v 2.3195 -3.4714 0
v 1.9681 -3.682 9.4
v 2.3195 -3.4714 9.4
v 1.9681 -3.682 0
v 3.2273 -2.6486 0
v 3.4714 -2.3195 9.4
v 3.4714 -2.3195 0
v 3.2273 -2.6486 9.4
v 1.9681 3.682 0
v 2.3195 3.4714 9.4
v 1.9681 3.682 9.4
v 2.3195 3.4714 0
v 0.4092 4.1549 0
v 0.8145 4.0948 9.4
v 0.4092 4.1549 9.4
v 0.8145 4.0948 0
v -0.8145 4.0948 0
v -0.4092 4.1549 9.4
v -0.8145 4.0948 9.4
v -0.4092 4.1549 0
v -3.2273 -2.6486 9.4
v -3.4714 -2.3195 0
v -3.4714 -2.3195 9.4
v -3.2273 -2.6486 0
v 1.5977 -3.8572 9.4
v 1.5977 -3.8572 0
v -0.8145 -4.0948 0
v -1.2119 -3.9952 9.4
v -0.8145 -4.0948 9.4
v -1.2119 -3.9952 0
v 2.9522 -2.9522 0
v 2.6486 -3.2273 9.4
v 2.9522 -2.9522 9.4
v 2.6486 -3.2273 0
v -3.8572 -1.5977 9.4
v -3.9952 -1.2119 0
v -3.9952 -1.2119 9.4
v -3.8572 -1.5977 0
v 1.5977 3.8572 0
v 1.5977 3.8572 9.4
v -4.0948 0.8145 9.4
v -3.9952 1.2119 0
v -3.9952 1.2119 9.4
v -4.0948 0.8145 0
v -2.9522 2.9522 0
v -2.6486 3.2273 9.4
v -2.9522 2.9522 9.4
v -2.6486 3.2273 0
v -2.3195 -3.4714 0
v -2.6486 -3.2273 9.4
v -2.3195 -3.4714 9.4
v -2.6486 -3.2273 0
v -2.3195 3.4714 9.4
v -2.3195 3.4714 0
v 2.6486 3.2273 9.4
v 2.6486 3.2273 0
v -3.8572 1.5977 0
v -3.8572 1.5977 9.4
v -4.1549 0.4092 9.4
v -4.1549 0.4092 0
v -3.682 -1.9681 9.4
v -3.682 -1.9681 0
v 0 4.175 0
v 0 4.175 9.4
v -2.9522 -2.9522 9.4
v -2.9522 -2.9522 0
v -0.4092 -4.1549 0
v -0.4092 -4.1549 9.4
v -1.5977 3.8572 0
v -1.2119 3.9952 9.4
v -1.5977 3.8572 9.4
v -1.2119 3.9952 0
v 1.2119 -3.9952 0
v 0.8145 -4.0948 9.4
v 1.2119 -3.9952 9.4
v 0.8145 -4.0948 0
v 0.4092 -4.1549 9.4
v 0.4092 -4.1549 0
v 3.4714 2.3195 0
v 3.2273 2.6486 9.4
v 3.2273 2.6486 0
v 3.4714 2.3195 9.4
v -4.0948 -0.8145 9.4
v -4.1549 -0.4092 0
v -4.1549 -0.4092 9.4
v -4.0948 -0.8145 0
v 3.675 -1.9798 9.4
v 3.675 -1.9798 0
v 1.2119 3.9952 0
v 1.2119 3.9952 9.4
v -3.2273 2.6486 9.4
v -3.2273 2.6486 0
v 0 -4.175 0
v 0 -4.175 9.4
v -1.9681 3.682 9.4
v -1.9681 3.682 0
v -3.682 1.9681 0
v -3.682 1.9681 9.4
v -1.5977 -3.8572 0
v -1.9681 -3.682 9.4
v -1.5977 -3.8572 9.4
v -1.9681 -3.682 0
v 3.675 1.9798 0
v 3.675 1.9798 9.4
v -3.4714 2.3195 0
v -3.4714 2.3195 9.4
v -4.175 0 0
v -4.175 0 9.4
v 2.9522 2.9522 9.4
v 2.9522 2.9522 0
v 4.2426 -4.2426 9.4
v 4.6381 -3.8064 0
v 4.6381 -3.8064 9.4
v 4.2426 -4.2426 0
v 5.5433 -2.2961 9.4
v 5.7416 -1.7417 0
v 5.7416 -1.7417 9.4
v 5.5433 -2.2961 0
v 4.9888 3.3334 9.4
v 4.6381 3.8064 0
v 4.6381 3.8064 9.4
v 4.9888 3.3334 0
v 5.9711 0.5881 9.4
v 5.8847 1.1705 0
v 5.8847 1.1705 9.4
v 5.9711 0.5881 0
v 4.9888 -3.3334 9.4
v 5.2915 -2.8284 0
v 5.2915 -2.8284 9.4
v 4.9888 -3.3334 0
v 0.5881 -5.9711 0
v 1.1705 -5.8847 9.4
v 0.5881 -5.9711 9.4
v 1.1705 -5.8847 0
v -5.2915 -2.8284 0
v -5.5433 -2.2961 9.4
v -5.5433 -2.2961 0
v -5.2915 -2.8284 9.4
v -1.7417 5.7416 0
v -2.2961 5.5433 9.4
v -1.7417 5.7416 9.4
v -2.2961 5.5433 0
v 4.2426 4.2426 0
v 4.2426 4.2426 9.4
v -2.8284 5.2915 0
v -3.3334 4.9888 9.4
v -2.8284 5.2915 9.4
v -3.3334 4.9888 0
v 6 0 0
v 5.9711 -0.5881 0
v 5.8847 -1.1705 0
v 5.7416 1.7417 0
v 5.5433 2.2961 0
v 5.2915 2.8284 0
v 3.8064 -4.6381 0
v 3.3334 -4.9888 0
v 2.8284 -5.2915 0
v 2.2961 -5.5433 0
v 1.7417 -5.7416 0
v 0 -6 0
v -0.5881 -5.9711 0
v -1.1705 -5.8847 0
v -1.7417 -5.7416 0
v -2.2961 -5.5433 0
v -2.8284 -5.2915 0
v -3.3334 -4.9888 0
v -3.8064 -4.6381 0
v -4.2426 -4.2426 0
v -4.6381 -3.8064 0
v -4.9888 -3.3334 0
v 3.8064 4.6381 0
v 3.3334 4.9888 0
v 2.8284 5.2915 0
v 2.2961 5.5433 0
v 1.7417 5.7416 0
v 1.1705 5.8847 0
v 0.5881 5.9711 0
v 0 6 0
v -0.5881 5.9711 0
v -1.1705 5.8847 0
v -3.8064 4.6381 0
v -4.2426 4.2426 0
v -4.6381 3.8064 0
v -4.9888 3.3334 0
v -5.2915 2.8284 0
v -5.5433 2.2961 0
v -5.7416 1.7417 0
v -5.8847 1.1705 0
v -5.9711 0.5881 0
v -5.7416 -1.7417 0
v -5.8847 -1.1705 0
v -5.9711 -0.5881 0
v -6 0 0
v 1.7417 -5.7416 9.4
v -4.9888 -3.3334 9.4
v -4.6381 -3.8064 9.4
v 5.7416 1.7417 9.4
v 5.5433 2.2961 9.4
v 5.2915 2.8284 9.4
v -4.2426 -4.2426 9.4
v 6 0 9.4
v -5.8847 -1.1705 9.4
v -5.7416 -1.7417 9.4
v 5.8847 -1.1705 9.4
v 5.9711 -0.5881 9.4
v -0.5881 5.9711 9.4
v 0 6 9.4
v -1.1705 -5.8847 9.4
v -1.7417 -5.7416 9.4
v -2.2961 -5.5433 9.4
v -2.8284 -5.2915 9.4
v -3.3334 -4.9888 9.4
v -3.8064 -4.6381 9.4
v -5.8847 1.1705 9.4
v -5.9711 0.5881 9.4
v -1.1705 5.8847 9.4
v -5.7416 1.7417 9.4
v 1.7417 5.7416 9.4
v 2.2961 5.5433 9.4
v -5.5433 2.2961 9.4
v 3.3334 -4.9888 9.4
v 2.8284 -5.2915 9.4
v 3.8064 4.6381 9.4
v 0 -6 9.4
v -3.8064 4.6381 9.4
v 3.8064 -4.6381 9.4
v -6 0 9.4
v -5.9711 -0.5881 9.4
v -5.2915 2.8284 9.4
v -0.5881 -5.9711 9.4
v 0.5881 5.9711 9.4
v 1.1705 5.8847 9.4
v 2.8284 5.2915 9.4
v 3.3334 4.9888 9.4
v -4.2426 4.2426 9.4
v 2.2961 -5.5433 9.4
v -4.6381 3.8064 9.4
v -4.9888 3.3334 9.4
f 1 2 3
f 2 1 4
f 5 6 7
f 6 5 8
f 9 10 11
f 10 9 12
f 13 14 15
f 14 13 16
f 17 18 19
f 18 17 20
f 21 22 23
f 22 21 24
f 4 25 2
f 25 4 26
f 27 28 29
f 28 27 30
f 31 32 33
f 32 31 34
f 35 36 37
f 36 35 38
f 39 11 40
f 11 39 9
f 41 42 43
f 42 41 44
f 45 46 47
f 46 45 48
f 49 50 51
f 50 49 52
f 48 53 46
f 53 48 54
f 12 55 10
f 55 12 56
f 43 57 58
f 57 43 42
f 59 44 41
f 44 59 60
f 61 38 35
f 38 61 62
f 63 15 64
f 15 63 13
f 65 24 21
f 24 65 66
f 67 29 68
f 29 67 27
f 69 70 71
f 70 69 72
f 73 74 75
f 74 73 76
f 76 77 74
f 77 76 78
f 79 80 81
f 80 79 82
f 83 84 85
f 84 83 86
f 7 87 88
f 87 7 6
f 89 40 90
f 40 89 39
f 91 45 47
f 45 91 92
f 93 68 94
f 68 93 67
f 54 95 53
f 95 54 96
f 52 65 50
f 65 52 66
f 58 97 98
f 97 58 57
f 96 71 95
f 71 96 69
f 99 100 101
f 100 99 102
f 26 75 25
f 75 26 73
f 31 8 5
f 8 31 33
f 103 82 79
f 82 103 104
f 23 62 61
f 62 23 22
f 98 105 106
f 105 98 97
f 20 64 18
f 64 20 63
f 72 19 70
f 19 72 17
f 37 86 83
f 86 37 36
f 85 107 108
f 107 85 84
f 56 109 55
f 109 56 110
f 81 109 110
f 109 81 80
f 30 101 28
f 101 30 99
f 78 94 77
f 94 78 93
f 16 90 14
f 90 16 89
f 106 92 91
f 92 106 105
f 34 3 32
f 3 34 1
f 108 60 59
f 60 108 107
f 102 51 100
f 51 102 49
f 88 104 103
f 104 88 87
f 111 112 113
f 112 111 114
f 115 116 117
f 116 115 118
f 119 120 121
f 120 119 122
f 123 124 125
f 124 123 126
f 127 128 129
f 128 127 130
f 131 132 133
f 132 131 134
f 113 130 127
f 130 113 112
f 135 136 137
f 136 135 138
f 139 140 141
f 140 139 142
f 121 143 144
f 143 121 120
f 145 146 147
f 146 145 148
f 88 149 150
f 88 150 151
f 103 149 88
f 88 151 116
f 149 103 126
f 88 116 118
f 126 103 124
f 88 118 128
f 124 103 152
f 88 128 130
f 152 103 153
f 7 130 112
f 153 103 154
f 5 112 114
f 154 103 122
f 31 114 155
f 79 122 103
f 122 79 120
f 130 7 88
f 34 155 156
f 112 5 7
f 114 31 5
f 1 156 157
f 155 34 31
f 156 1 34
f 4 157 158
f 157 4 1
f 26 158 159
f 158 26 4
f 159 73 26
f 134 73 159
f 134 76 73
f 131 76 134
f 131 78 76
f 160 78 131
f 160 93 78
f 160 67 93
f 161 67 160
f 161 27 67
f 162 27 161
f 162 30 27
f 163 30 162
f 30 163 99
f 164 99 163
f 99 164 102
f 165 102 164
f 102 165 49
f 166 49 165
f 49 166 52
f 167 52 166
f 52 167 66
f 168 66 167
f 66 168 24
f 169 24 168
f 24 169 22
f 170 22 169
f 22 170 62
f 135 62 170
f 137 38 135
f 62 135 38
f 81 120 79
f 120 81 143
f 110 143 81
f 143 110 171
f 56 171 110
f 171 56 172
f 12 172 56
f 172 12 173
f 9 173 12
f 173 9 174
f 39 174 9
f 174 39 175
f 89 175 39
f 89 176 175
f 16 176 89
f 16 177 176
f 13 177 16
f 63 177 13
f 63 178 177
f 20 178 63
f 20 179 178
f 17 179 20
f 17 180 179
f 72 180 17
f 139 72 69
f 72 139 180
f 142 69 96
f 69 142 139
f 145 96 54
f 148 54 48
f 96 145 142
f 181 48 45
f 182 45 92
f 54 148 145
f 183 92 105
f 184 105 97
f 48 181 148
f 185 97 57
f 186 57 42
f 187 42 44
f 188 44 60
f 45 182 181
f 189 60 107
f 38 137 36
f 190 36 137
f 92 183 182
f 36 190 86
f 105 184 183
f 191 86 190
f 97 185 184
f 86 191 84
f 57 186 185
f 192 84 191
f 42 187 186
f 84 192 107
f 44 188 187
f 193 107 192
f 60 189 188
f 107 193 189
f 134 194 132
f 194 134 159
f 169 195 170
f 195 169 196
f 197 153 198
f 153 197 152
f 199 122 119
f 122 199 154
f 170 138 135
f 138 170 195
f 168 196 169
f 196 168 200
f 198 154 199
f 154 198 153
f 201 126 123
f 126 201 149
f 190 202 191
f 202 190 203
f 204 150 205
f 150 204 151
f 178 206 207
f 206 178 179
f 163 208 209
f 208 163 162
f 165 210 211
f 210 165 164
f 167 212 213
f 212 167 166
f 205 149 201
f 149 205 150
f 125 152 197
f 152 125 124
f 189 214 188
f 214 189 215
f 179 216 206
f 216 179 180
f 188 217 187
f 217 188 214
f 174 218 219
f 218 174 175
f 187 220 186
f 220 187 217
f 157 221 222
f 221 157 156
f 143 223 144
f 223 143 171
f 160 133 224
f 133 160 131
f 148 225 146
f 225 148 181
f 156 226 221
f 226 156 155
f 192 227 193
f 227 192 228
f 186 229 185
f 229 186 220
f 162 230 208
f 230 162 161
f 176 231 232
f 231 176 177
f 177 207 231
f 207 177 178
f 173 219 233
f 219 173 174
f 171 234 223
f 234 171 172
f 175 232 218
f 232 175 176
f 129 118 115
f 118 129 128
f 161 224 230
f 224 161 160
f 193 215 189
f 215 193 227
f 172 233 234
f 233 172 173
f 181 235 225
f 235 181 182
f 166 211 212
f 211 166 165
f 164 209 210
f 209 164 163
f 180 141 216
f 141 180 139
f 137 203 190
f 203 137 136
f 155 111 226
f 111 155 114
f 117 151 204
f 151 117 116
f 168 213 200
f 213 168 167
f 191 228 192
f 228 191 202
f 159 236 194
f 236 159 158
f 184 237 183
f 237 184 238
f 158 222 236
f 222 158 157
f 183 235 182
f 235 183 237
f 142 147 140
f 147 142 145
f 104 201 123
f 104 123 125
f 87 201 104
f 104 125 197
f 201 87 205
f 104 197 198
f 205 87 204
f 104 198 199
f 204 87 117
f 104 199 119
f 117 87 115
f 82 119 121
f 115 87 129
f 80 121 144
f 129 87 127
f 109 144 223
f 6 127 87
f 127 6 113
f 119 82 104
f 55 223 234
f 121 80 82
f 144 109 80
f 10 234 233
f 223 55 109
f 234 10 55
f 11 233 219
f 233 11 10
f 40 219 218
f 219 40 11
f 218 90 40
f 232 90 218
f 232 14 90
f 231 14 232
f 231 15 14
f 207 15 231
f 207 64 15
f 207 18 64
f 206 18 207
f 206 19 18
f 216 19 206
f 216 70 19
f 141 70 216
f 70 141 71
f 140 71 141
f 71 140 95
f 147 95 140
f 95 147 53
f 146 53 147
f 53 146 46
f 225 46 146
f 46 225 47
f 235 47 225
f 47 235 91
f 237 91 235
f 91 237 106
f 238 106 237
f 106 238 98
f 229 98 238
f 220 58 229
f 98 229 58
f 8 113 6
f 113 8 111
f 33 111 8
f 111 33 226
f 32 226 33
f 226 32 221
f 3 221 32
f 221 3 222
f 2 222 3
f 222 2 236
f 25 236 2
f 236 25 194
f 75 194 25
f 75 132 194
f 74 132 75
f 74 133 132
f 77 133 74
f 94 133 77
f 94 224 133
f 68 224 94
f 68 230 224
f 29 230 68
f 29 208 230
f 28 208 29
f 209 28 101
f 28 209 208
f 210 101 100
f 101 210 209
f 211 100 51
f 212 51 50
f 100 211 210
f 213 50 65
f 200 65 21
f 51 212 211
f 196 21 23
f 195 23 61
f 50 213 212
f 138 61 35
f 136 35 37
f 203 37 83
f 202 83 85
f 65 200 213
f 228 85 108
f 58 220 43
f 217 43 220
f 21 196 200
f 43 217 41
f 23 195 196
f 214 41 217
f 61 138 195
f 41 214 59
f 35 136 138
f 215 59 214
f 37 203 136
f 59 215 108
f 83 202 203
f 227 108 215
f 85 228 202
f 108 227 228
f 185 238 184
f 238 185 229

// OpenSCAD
// Gen-CT — gap sleeve: rigid spacer on the shaft BETWEEN the two rotor carriers (passes through the stator
// hole). Length = m2m, so it sets the magnet gap and carries the full magnet pull. Print x1, upright.
include <parameters.scad>;
$fn = 64;
// D-flat keyed bore: flat faces +X (angle 0 = magnet pocket 0 = index notch)
module dflat_bore(h) {
    intersection() {
        cylinder(d=shaft_bore, h=h);
        translate([-shaft_bore, -shaft_bore, 0]) cube([shaft_bore + dflat_x, 2*shaft_bore, h]);
    }
}

difference() {
    cylinder(d=sleeve_od, h=m2m);
    translate([0, 0, -0.1]) dflat_bore(m2m + 0.2);
}
